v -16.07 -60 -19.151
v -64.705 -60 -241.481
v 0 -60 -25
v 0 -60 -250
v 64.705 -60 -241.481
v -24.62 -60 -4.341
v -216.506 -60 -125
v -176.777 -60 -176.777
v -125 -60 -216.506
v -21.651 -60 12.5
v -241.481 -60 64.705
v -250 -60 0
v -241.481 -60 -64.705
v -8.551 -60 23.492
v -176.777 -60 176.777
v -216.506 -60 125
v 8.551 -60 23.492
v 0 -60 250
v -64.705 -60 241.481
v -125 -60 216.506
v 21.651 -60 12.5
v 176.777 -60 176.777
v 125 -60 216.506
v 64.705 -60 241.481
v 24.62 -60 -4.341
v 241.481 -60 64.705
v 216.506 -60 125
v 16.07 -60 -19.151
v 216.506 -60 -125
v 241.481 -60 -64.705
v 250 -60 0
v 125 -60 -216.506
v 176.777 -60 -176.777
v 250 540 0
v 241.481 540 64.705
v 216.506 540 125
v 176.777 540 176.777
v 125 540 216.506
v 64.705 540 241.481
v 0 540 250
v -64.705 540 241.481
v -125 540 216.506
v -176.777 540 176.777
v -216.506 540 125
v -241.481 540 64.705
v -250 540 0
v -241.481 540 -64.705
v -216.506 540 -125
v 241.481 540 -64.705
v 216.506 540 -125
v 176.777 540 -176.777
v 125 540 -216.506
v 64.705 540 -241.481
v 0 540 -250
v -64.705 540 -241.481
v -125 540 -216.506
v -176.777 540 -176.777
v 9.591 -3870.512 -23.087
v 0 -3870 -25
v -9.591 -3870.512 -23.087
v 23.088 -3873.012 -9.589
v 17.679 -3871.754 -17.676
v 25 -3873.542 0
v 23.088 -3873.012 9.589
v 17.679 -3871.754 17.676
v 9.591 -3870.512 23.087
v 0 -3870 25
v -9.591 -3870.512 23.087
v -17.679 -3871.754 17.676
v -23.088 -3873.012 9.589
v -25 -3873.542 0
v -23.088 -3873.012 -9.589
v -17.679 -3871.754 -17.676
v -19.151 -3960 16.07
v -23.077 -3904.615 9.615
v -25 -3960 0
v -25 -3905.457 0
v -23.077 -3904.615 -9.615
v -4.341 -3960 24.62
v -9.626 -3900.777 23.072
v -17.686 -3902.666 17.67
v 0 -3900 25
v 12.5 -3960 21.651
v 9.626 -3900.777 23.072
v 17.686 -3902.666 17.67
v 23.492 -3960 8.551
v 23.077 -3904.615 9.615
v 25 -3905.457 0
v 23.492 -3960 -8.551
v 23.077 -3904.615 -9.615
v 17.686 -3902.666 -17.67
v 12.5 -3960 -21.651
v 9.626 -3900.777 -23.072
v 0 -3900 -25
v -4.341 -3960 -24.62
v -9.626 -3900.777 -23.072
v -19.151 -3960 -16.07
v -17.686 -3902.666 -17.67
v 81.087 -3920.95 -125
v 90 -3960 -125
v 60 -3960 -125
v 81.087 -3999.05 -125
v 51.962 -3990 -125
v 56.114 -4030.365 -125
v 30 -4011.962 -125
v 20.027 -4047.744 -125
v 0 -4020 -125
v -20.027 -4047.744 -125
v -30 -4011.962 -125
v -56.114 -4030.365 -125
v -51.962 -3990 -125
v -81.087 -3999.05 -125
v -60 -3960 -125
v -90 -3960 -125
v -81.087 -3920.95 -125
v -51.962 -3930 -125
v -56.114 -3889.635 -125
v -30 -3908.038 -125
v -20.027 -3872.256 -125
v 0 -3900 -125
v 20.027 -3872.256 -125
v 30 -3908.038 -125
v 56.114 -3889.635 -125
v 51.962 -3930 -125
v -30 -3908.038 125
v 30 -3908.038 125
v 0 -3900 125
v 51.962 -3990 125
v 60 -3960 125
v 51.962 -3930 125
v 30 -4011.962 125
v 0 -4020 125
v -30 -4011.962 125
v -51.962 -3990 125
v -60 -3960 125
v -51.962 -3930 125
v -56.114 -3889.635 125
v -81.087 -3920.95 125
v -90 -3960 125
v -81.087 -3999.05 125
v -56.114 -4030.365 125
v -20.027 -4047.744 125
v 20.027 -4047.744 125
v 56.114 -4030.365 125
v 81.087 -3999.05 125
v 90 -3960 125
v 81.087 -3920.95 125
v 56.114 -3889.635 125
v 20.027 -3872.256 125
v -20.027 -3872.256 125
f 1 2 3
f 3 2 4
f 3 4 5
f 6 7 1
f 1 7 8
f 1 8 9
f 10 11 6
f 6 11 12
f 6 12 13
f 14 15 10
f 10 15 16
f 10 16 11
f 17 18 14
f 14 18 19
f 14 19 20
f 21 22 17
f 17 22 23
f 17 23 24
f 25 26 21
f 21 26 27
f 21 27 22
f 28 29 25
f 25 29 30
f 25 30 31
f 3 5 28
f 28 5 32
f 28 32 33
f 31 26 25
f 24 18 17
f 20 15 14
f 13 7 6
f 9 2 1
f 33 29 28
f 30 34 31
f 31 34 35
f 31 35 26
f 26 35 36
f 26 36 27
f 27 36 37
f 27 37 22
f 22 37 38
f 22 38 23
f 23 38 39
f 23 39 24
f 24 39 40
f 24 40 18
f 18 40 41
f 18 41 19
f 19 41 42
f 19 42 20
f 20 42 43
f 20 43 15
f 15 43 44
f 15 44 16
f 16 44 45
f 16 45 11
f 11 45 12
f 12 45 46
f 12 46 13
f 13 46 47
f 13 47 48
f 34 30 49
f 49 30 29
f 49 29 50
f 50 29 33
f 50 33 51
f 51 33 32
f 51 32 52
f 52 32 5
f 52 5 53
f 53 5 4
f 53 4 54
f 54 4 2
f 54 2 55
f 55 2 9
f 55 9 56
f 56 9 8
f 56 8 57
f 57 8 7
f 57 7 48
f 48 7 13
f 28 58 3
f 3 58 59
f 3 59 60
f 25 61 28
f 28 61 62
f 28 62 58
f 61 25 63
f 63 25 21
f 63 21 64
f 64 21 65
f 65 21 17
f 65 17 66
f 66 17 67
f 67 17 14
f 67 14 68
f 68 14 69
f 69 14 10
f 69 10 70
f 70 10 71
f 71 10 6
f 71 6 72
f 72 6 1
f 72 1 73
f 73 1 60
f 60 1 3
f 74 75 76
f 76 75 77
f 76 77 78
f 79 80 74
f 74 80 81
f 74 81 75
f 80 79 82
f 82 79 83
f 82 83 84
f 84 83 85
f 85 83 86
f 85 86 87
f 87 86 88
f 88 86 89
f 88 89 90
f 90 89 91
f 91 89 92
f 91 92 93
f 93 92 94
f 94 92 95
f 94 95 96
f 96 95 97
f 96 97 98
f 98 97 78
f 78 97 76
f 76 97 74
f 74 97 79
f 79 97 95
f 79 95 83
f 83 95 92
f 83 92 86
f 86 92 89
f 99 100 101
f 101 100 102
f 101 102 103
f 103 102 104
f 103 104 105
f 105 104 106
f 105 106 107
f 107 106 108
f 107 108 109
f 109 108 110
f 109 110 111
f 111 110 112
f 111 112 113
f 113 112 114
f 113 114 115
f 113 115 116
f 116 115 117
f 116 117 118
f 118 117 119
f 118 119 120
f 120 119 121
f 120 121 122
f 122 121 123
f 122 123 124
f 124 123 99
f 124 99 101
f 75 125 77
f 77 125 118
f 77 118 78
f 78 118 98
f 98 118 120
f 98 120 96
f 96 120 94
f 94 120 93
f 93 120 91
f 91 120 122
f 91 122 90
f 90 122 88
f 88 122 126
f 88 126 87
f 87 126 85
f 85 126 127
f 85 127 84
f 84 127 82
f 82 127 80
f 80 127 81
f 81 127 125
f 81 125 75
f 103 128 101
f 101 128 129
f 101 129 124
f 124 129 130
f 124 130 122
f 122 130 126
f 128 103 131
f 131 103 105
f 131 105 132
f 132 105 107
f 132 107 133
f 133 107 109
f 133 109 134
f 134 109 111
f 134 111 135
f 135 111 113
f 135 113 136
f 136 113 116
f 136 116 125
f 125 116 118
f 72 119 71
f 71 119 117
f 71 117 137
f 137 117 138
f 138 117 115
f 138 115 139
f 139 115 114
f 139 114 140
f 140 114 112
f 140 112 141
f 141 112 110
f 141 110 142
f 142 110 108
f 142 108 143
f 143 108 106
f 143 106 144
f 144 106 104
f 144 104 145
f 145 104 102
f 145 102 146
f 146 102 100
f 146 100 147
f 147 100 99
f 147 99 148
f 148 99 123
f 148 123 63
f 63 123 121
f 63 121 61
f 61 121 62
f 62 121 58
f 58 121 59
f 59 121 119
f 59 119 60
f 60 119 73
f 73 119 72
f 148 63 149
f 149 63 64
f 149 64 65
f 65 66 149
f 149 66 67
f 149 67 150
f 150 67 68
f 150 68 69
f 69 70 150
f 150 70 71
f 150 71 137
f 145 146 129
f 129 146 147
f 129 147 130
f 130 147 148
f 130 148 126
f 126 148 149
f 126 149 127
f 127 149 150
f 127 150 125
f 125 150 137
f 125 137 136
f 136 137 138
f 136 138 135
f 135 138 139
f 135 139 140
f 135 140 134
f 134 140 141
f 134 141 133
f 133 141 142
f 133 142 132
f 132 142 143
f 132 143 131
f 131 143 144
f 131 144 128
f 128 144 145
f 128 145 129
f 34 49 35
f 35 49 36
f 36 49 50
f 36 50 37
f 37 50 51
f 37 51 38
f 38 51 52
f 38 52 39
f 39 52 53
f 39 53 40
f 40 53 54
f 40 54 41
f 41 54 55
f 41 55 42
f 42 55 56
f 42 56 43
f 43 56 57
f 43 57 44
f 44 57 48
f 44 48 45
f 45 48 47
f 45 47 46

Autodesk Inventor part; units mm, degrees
ref_plane "XZ Plane" through (0, 0, 0) normal (0, 1, 0) x (-1, 0, 0)
sketch "Sketch4" plane through (0, 0, 0) normal (0, 0, 1) x (1, 0, 0)
  circle A0 centre (0, -3960) radius 60
  circle A1 centre (0, -3960) radius 90
  line L0 (-350, 0) -> (350, 0)
  point P0 (0, 0)
  dimension "d14" = 120
  dimension "d15" = 180
  dimension "d31" = 3960
extrude "Extrusion2" add sketch "Sketch4" along normal mid plane 250
sketch "Sketch6" plane through (0, 0, 0) normal (0, 1, 0) x (-1, 0, 0)
  circle A0 centre (0, 0) radius 25
  dimension "d18" = 50
extrude "Extrusion3" add sketch "Sketch6" along normal blind 540 and the other way blind 3960
sketch "Sketch7" plane through (0, -3960, 125) normal (0, 0, 1) x (1, 0, 0)
  point P0 (0, 3960)
  point P1 (0, 3960)
hole "Hole1" at (0, 0, 125) direction (0, 0, -1) diameter 120 end through all
sketch "Sketch8" plane through (0, 540, 0) normal (0, 1, 0) x (1, 0, 0)
  circle A0 centre (0, 0) radius 250
  dimension "d28" = 500
extrude "Extrusion4" add sketch "Sketch8" against normal blind 600
properties part number "pendulumSimple" material "Steel"
